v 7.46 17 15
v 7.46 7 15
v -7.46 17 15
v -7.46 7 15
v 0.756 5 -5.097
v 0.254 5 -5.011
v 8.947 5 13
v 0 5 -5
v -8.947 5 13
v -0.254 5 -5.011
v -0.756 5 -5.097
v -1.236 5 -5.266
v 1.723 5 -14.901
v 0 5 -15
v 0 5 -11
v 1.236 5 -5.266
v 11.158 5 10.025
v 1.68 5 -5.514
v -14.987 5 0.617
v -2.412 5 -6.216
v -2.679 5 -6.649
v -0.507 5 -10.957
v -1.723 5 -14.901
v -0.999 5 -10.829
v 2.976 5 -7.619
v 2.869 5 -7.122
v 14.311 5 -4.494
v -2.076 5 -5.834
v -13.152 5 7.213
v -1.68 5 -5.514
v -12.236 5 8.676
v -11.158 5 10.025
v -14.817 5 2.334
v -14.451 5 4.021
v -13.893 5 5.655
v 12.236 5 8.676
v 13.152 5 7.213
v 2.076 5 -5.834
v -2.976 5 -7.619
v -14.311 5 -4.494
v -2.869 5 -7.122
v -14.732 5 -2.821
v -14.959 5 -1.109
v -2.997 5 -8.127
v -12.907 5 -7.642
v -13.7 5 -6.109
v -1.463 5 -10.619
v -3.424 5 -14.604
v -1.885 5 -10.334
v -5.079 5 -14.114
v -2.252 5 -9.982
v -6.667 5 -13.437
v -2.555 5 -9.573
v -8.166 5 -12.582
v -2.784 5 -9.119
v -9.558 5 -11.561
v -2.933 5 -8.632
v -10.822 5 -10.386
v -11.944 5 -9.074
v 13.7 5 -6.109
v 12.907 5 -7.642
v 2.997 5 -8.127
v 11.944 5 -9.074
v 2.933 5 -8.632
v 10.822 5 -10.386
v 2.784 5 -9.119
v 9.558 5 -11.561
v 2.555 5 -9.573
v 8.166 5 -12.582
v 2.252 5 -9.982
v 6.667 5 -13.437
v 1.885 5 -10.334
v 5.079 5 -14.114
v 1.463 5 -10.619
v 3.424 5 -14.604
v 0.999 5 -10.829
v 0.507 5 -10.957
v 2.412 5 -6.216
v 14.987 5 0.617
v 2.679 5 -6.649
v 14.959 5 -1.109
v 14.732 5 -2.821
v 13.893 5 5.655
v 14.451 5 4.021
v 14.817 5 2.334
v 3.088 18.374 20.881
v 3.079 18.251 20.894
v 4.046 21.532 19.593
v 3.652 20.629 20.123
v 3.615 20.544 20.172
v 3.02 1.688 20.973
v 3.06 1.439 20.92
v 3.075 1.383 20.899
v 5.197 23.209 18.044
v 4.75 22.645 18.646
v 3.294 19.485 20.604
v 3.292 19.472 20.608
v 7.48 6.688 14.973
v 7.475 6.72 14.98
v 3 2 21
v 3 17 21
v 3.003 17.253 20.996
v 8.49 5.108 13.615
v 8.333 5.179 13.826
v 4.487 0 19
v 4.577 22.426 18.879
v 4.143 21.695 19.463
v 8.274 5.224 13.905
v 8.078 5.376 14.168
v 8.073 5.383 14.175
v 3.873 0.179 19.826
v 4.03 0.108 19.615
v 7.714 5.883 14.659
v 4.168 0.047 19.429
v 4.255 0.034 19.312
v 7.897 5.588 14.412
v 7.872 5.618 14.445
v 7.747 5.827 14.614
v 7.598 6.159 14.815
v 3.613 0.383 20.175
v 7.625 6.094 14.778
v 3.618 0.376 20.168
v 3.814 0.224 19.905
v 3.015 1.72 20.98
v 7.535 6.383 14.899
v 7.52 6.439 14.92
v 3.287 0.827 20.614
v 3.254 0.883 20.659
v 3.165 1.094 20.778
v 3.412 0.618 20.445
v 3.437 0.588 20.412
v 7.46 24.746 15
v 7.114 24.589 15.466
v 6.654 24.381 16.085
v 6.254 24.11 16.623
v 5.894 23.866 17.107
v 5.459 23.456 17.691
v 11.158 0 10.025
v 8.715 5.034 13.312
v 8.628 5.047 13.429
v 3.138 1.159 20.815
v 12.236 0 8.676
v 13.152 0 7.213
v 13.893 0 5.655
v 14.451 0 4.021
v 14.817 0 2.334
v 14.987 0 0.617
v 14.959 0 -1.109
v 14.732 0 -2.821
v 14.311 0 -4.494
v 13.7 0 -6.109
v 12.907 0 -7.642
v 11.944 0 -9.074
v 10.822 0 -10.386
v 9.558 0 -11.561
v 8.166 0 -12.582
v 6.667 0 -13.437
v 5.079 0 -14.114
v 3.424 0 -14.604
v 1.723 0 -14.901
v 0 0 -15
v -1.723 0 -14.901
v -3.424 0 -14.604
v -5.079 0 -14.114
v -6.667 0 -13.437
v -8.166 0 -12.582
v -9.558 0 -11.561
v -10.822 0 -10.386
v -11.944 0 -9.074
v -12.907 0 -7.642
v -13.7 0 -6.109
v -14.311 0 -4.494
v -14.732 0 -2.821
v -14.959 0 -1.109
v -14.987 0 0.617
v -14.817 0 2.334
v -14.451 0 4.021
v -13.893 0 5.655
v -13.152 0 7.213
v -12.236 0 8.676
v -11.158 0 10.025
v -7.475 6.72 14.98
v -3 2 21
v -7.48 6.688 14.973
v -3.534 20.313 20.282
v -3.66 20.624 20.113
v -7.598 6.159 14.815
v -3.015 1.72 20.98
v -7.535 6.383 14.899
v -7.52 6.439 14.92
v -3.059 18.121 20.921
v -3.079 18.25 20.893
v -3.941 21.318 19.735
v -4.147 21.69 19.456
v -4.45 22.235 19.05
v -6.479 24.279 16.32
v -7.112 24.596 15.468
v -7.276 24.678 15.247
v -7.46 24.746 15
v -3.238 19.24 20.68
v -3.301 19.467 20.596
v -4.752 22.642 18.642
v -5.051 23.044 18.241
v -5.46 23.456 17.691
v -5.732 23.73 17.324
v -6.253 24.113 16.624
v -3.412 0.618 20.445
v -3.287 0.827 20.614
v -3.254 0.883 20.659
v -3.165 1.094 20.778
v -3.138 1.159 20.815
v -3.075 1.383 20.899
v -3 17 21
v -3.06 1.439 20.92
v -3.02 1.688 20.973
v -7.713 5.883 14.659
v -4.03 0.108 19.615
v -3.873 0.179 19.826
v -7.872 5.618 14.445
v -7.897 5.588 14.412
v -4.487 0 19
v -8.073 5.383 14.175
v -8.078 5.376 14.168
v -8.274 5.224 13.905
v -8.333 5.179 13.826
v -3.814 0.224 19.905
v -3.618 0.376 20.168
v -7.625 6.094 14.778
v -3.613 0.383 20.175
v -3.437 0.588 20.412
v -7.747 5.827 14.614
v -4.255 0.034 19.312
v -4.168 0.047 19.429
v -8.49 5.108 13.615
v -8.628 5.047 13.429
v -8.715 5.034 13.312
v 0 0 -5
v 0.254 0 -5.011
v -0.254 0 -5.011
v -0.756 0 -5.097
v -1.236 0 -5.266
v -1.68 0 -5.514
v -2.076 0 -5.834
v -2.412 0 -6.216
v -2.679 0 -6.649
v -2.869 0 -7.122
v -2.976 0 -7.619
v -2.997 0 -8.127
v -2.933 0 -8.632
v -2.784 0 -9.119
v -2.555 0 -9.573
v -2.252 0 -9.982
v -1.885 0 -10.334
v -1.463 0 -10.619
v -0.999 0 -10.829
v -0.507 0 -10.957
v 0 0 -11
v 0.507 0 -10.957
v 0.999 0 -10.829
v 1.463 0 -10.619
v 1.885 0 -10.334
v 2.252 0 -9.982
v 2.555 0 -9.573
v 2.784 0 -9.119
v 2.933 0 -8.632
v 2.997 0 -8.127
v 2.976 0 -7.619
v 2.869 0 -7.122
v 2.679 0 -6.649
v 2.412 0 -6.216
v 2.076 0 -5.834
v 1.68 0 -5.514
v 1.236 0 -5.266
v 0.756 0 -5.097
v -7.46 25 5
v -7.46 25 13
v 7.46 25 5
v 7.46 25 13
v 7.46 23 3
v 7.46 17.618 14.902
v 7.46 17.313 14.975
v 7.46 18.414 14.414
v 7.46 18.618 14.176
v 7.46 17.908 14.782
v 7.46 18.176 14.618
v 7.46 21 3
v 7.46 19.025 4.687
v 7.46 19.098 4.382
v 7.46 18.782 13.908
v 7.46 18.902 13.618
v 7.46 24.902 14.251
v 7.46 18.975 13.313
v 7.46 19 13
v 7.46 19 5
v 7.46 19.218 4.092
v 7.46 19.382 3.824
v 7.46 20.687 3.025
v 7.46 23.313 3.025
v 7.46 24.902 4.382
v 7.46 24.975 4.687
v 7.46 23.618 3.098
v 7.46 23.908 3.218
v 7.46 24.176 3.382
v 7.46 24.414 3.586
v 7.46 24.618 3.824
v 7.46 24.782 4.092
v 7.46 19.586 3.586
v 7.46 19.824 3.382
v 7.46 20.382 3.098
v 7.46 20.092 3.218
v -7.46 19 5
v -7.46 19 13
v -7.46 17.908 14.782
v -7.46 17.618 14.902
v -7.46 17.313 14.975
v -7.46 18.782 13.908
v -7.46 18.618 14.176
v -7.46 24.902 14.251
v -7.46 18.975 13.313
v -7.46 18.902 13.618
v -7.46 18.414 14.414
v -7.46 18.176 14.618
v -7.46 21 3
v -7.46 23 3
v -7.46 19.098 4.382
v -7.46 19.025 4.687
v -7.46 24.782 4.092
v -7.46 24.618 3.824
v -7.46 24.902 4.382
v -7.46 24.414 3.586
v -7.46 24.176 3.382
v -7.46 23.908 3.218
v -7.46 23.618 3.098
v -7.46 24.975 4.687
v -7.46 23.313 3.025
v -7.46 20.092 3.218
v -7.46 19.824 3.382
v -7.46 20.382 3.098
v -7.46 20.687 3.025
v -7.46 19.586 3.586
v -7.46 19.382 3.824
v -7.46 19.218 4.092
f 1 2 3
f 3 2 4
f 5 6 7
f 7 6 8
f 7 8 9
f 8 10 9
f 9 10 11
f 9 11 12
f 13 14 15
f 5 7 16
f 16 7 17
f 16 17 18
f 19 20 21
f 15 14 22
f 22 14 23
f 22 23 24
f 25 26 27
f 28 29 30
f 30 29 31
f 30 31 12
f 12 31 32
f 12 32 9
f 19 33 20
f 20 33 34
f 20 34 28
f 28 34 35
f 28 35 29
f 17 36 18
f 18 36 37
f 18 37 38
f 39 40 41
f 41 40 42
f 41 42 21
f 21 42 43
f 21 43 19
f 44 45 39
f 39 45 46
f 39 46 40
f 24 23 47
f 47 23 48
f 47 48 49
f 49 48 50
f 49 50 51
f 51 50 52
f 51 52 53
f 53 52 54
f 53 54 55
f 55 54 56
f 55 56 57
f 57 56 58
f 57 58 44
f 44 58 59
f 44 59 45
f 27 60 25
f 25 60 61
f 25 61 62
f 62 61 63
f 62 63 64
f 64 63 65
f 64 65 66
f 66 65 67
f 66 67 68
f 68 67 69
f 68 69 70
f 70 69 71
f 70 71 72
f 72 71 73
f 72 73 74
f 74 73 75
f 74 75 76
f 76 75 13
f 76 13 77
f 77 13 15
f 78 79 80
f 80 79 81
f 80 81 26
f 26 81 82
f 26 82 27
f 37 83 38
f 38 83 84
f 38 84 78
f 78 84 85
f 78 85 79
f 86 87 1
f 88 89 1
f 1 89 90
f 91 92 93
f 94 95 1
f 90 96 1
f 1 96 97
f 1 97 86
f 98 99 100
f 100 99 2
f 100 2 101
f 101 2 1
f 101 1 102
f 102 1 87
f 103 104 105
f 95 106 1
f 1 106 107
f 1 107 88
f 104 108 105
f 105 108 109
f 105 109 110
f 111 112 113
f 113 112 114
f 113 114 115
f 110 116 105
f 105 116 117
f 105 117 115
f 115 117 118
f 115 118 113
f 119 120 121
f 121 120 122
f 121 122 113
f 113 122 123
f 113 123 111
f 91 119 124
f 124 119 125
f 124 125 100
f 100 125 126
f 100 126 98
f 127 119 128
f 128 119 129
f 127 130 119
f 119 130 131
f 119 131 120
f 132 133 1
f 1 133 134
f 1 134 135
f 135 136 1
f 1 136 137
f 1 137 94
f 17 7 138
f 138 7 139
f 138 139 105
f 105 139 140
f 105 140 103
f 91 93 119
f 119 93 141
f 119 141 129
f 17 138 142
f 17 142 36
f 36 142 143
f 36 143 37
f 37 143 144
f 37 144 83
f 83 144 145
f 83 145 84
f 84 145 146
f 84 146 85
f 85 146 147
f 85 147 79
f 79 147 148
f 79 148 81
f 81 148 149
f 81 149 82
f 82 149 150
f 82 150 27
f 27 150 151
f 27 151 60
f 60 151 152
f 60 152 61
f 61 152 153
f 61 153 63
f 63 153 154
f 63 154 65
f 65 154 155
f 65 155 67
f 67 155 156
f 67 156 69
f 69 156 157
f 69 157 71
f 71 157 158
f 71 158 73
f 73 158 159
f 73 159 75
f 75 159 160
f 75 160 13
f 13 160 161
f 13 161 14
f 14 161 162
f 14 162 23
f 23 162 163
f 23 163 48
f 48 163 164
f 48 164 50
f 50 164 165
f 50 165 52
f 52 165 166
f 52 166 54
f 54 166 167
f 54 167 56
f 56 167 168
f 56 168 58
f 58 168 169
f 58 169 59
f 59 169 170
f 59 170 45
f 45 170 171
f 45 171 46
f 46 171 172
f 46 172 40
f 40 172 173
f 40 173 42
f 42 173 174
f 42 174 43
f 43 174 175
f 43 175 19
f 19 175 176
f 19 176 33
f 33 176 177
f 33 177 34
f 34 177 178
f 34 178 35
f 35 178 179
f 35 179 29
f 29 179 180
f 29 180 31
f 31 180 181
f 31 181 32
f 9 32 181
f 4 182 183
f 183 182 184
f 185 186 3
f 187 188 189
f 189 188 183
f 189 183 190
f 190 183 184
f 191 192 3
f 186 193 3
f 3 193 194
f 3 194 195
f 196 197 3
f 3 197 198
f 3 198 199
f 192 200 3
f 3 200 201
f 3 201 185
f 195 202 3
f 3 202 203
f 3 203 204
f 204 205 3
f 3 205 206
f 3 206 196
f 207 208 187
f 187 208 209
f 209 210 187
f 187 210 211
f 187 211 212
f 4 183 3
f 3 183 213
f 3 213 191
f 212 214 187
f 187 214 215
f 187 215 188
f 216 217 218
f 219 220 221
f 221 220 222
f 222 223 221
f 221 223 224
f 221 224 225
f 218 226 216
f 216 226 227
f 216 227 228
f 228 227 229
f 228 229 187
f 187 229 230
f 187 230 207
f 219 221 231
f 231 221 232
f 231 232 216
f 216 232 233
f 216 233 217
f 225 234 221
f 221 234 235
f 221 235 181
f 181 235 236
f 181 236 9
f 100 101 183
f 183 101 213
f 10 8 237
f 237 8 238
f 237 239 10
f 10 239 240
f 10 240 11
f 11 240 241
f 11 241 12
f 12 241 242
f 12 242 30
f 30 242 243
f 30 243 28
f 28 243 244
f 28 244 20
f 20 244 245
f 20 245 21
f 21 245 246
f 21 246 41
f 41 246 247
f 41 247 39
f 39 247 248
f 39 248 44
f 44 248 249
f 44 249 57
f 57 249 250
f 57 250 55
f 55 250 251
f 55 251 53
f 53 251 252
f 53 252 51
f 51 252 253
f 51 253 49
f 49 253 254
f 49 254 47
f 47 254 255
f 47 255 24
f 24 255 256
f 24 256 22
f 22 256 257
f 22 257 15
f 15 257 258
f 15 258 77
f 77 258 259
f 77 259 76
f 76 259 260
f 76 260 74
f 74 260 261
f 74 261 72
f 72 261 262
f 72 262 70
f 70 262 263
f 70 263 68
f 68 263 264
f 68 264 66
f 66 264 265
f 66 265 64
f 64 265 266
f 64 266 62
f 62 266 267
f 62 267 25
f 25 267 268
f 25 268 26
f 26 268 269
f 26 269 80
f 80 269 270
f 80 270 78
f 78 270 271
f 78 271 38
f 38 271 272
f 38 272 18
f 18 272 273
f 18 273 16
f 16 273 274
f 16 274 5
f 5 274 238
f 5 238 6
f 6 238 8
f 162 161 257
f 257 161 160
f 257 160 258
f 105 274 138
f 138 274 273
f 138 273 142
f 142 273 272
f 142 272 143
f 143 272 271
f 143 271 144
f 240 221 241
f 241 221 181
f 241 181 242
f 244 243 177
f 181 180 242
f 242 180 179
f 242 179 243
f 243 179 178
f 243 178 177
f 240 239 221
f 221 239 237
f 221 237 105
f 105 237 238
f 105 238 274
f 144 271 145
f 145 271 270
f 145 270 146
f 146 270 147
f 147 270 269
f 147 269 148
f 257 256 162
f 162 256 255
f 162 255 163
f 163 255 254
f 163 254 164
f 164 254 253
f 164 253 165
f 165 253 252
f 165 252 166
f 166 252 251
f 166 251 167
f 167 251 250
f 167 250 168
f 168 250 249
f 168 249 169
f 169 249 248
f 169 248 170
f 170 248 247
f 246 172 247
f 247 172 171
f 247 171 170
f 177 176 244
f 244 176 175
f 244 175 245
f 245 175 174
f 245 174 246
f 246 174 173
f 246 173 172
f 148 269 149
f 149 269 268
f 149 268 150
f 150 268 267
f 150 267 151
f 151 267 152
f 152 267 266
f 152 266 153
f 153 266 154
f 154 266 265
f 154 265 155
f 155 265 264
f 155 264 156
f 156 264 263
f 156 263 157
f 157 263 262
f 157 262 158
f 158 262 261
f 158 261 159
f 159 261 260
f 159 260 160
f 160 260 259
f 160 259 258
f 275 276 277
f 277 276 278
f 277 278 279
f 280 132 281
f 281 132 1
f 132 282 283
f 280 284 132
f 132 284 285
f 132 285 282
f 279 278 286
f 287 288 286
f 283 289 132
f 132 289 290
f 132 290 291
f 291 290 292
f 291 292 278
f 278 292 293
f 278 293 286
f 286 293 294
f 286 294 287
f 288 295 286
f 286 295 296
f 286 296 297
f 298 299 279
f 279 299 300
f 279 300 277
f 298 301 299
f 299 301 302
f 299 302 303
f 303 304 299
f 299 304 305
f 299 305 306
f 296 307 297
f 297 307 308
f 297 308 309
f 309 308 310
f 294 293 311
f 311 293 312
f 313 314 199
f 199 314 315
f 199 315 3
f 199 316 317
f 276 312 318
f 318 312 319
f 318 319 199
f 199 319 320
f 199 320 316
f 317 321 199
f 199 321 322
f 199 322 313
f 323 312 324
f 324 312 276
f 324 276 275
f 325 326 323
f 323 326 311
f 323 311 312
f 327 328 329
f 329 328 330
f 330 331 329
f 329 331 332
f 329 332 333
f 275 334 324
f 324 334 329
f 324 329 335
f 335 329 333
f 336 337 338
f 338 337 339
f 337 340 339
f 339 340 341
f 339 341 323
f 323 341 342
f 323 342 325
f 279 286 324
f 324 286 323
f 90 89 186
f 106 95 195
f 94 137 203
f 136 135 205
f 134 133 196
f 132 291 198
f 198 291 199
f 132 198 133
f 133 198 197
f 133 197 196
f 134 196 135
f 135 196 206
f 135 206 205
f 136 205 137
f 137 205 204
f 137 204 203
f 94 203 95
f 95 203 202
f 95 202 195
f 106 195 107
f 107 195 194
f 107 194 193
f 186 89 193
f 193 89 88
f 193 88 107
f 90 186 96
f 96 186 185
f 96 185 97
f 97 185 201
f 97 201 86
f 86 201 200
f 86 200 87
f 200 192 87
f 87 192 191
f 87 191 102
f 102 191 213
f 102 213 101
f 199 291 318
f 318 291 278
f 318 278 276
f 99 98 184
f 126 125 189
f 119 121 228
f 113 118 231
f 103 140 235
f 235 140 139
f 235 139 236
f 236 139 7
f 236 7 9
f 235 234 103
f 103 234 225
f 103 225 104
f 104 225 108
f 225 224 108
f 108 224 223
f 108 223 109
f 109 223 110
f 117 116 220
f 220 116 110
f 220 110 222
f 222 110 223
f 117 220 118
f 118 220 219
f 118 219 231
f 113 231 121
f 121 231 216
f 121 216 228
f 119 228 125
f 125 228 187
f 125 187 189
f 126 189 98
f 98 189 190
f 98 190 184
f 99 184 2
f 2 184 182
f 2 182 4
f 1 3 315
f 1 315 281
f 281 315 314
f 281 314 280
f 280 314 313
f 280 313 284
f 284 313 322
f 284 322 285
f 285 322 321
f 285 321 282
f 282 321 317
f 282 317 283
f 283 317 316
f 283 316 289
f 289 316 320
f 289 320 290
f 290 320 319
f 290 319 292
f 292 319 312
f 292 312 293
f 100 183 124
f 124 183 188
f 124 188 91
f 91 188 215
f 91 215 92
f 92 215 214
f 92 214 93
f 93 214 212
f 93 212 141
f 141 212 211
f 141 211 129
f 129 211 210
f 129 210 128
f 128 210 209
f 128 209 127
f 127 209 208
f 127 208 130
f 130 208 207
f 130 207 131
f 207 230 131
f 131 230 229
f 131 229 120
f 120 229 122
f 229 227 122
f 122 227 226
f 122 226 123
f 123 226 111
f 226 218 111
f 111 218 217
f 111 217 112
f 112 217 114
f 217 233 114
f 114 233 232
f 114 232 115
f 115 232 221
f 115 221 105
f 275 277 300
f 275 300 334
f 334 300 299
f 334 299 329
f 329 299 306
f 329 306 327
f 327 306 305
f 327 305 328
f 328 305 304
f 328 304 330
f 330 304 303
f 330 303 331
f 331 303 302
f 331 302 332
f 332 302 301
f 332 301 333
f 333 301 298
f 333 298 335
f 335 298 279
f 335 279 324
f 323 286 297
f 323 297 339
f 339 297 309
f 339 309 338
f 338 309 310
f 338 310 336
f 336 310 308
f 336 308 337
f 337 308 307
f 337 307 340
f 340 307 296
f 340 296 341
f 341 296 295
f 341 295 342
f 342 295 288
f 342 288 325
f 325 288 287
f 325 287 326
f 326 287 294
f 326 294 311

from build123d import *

# Parameters (mm, degrees)
SKETCH1_R           = 3
BOSS_EXTRUDE2_DEPTH = 5
SKETCH2_W           = 6
SKETCH2_H           = 6
BOSS_EXTRUDE5_DEPTH = 20
SKETCH6_W           = 14.919898766
SKETCH6_H           = 6
BOSS_EXTRUDE6_DEPTH = 12
FILLET2_R           = 8
FILLET3_R           = 2
FILLET4_R           = 2
FILLET5_R           = 2
FILLET6_R           = 2


with BuildPart() as part:
    # Sketch1 → Boss-Extrude2 (new body)
    with BuildSketch(Plane(origin=(0, 0, 0), x_dir=(1, 0, 0), z_dir=(0, 1, 0))):
        with BuildLine():
            ThreePointArc((11.158287634, -10.024600595), (0, 15), (-11.158287634, -10.024600595))
            Line((-11.158287634, -10.024600595), (-3, -21))
            Line((-3, -21), (3, -21))
            Line((3, -21), (11.158287634, -10.024600595))
        make_face()
        with Locations(Location((0, 8, 0), (0, 0, 270))):
            Circle(SKETCH1_R, mode=Mode.SUBTRACT)
    extrude(amount=BOSS_EXTRUDE2_DEPTH)

    # Sketch2 → Boss-Extrude5 (add)
    with BuildSketch(Plane(origin=(0, 5, 0), x_dir=(1, 0, 0), z_dir=(0, 1, 0))):
        Polygon((-7.459949383, -15), (-3, -21), (-3, -15), align=None)
        with Locations((0, -18)):
            Rectangle(SKETCH2_W, SKETCH2_H)
        Polygon((3, -15), (3, -21), (7.459949383, -15), align=None)
    extrude(amount=BOSS_EXTRUDE5_DEPTH)

    # Sketch6 → Boss-Extrude6 (add)
    with BuildSketch(Plane(origin=(0, 0, 15), x_dir=(-1, 0, 0), z_dir=(0, 0, -1))):
        with Locations((0, 22)):
            Rectangle(SKETCH6_W, SKETCH6_H)
    extrude(amount=BOSS_EXTRUDE6_DEPTH)

    # Fillet2
    fillet2_edges = [part.edges().sort_by_distance(p)[0] for p in [
        (0, 25, 21),
    ]]
    fillet(fillet2_edges, radius=FILLET2_R)

    # Fillet3
    fillet3_edges = [part.edges().sort_by_distance(p)[0] for p in [
        (0, 5, 15),
    ]]
    fillet(fillet3_edges, radius=FILLET3_R)

    # Fillet4
    fillet4_edges = [part.edges().sort_by_distance(p)[0] for p in [
        (0, 19, 15),
    ]]
    fillet(fillet4_edges, radius=FILLET4_R)

    # Fillet5
    fillet5_edges = [part.edges().sort_by_distance(p)[0] for p in [
        (0, 0, 21),
    ]]
    fillet(fillet5_edges, radius=FILLET5_R)

    # Fillet6
    fillet6_edges = [part.edges().sort_by_distance(p)[0] for p in [
        (0, 19, 3),
        (0, 25, 3),
    ]]
    fillet(fillet6_edges, radius=FILLET6_R)


solid = part.part
